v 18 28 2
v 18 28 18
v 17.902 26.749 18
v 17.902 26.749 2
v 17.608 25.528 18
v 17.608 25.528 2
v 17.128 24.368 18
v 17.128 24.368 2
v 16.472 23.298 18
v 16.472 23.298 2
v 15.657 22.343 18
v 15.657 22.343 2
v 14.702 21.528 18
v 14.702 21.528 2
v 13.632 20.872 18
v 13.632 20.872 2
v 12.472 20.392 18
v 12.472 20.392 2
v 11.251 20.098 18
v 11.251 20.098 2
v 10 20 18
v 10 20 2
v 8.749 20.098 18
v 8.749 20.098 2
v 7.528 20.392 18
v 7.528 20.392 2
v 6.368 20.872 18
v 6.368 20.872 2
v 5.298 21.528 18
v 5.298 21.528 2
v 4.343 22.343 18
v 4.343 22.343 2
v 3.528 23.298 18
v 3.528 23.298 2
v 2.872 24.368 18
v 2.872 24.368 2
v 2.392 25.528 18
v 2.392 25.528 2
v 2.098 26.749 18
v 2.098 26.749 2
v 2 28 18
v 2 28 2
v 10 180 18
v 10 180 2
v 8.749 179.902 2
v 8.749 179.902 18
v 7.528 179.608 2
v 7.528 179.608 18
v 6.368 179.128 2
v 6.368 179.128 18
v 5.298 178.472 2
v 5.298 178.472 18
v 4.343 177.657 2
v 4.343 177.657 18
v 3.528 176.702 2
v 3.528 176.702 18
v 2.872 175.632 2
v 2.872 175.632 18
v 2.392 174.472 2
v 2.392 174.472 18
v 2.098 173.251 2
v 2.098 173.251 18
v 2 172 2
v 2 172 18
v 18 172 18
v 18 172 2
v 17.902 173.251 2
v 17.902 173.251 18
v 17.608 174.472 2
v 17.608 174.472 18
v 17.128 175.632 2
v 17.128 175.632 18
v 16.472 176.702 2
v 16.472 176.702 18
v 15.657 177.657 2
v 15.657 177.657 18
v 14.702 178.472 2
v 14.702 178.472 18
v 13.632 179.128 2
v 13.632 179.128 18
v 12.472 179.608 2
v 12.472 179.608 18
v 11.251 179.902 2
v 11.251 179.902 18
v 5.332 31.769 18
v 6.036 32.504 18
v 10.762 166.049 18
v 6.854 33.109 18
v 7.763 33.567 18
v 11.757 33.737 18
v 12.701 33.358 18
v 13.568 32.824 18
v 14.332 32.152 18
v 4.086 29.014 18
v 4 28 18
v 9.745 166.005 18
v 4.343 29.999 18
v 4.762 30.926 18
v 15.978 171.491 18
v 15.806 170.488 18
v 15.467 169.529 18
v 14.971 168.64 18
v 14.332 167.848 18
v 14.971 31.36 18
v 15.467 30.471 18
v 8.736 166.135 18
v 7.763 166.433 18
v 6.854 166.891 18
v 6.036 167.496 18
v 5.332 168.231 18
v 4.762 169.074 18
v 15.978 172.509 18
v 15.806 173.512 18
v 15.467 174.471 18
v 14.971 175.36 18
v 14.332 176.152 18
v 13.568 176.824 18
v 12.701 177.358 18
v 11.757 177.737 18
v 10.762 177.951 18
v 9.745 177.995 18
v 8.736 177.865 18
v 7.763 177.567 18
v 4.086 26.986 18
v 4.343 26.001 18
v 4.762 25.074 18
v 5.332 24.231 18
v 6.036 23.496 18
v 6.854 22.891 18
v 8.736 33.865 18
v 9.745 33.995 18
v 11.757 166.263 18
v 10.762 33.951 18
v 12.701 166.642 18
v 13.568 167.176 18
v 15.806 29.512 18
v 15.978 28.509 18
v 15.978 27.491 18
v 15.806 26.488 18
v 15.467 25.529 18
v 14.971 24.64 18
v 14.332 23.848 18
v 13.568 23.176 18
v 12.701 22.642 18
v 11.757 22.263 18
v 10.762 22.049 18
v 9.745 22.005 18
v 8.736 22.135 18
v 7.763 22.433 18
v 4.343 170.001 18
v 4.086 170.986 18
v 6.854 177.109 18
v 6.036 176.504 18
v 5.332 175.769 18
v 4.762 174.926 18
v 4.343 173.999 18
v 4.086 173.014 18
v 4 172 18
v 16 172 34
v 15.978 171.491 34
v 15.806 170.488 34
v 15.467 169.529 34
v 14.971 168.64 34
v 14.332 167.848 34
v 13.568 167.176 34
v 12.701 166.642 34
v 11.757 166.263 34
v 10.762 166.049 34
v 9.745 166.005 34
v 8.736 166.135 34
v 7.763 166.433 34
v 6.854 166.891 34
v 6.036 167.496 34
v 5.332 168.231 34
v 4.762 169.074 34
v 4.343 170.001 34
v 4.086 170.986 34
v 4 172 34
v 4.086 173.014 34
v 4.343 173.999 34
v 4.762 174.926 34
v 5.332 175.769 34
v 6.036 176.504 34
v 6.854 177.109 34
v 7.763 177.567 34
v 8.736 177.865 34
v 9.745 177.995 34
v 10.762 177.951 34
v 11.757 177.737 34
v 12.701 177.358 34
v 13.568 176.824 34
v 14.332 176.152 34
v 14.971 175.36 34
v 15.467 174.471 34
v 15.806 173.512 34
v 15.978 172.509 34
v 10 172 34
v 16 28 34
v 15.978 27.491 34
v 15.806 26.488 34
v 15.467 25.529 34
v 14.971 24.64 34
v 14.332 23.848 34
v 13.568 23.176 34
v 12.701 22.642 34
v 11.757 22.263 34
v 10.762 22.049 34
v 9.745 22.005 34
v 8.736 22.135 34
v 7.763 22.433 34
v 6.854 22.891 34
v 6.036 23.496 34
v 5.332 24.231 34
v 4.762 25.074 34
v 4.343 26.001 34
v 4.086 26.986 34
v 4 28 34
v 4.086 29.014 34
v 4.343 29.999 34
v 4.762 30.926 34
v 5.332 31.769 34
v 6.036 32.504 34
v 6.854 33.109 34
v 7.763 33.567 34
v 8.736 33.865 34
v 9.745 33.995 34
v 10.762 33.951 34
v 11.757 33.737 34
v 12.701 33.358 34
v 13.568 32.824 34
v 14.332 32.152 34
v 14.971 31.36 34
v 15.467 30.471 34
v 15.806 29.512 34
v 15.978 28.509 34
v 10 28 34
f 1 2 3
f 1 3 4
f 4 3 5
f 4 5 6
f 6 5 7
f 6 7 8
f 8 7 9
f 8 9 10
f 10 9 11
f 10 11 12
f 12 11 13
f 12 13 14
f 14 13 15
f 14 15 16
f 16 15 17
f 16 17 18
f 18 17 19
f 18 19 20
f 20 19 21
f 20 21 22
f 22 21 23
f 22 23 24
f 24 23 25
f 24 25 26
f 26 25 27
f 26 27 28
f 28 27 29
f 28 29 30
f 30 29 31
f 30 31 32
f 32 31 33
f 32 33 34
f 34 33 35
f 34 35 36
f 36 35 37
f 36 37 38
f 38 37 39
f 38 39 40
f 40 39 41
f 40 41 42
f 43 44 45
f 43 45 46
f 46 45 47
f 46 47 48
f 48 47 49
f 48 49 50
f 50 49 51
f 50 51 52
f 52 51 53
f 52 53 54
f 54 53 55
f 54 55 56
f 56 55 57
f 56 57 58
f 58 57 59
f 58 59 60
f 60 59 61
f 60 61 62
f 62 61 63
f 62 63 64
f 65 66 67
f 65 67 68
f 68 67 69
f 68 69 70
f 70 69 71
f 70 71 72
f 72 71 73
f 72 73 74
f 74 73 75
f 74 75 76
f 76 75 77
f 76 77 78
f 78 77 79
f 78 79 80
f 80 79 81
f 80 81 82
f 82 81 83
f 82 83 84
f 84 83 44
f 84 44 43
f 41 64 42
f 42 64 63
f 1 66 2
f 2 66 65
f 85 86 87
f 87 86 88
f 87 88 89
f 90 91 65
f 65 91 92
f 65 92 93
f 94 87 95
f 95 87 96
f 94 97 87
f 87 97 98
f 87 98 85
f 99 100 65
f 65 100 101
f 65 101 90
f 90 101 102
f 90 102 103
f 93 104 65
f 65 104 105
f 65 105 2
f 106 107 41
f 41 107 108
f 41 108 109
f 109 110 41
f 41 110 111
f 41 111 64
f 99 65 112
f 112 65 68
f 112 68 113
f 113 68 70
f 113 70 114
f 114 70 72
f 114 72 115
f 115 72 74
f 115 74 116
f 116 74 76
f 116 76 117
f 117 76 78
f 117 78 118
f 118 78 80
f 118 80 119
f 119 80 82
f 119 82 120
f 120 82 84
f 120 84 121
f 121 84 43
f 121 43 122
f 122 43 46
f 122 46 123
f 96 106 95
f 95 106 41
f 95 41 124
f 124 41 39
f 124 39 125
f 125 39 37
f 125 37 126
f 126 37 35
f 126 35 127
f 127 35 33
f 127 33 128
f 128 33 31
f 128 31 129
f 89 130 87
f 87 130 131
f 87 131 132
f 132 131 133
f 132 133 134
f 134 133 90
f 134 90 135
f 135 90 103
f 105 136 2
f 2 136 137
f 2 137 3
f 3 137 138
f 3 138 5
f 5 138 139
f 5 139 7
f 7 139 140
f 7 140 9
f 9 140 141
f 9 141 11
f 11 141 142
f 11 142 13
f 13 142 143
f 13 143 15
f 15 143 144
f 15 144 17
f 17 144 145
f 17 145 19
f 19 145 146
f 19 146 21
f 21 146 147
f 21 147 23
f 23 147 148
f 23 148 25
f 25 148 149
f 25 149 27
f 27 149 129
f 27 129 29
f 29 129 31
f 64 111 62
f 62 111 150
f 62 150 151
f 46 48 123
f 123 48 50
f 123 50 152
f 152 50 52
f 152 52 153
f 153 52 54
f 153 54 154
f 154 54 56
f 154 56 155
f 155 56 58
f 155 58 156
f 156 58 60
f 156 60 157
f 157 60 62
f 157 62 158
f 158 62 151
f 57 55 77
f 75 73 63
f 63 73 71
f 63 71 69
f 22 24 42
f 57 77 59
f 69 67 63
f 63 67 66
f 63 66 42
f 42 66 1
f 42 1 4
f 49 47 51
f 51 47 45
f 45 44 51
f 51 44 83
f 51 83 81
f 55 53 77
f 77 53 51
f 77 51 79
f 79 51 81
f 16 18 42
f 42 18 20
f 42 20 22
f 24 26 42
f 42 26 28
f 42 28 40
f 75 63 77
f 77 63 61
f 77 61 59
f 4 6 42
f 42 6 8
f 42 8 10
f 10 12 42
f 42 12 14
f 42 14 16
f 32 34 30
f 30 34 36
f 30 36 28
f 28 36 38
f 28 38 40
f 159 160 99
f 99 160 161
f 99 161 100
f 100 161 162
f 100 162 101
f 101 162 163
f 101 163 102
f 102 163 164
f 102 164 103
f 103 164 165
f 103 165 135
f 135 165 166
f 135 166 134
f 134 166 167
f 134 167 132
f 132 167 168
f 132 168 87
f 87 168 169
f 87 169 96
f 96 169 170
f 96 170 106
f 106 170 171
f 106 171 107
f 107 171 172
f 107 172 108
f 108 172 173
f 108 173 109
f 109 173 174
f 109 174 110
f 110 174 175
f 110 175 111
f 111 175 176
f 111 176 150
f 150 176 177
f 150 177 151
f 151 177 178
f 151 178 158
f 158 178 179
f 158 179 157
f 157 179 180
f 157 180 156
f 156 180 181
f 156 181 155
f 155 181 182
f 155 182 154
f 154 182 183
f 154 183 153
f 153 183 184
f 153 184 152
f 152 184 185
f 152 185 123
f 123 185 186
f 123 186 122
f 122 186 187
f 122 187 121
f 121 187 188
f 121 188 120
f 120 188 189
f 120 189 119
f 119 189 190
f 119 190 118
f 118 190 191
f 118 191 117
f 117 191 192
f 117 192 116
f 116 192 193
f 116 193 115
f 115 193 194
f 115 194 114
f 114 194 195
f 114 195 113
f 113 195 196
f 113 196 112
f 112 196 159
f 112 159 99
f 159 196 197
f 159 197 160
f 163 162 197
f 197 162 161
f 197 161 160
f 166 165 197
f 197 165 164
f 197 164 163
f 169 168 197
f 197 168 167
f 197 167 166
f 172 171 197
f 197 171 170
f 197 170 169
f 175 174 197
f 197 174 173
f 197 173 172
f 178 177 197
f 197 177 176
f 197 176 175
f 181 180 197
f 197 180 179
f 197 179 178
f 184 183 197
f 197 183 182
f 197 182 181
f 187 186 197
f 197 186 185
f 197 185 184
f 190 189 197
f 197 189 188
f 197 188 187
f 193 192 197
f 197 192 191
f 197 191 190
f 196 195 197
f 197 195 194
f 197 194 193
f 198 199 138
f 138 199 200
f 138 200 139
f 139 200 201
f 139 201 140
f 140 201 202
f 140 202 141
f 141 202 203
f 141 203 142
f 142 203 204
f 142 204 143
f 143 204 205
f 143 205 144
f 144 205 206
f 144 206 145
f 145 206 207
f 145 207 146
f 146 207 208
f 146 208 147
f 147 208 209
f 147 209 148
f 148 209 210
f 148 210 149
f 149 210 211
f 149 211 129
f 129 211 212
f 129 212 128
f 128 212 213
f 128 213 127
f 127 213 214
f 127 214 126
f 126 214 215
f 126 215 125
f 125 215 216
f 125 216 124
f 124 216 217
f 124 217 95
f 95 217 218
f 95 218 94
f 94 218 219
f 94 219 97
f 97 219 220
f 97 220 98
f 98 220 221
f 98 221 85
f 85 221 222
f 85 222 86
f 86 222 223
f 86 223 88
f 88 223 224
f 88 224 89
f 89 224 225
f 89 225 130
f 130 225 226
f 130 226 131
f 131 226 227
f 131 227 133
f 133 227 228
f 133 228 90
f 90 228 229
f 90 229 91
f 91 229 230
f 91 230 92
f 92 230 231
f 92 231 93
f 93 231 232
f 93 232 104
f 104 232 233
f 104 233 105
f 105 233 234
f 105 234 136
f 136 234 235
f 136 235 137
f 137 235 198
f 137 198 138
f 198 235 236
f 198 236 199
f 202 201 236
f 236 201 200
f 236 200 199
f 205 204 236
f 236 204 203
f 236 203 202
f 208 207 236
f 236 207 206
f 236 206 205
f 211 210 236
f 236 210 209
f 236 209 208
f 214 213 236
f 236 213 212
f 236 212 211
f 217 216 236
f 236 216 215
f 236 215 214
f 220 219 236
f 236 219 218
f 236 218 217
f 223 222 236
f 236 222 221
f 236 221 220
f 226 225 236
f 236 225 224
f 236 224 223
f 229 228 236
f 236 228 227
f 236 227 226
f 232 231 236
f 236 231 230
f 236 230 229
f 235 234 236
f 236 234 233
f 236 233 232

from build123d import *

# Parameters (mm, degrees)
SKETCH1_W           = 20
SKETCH1_H           = 200
BOSS_EXTRUDE1_DEPTH = 20
FILLET1_R           = 10
FILLET2_R           = 10
FILLET3_R           = 10
FILLET4_R           = 10
SCALE1_SCALE        = 0.8
SKETCH2_R           = 6
BOSS_EXTRUDE3_DEPTH = 16


with BuildPart() as part:
    # Sketch1 → Boss-Extrude1 (new body)
    with BuildSketch(Plane.XY):
        with Locations((10, 100)):
            Rectangle(SKETCH1_W, SKETCH1_H)
    extrude(amount=BOSS_EXTRUDE1_DEPTH)

    # Fillet1
    fillet1_edges = [part.edges().sort_by_distance(p)[0] for p in [
        (20, 200, 10),
    ]]
    fillet(fillet1_edges, radius=FILLET1_R)

    # Fillet2
    fillet2_edges = [part.edges().sort_by_distance(p)[0] for p in [
        (0, 200, 10),
    ]]
    fillet(fillet2_edges, radius=FILLET2_R - 0.0001)  # a hair under: the kernel refuses the full size

    # Fillet3
    fillet3_edges = [part.edges().sort_by_distance(p)[0] for p in [
        (0, 0, 10),
    ]]
    fillet(fillet3_edges, radius=FILLET3_R)

    # Fillet4
    fillet4_edges = [part.edges().sort_by_distance(p)[0] for p in [
        (20, 0, 10),
    ]]
    fillet(fillet4_edges, radius=FILLET4_R - 0.0001)  # a hair under: the kernel refuses the full size


with BuildPart() as part_1:
    # Scale1: scaled about (10, 100, 10)
    add(part.part.scale(SCALE1_SCALE).moved(Location((2, 20, 2))))

    # Sketch2 → Boss-Extrude3 (add)
    with BuildSketch(Plane.XY.offset(18)):
        with Locations(Location((10, 172, 0), (0, 0, 180))):
            Circle(SKETCH2_R)
        with Locations(Location((10, 28, 0), (0, 0, 180))):
            Circle(SKETCH2_R)
    extrude(amount=BOSS_EXTRUDE3_DEPTH)


solid = part_1.part
